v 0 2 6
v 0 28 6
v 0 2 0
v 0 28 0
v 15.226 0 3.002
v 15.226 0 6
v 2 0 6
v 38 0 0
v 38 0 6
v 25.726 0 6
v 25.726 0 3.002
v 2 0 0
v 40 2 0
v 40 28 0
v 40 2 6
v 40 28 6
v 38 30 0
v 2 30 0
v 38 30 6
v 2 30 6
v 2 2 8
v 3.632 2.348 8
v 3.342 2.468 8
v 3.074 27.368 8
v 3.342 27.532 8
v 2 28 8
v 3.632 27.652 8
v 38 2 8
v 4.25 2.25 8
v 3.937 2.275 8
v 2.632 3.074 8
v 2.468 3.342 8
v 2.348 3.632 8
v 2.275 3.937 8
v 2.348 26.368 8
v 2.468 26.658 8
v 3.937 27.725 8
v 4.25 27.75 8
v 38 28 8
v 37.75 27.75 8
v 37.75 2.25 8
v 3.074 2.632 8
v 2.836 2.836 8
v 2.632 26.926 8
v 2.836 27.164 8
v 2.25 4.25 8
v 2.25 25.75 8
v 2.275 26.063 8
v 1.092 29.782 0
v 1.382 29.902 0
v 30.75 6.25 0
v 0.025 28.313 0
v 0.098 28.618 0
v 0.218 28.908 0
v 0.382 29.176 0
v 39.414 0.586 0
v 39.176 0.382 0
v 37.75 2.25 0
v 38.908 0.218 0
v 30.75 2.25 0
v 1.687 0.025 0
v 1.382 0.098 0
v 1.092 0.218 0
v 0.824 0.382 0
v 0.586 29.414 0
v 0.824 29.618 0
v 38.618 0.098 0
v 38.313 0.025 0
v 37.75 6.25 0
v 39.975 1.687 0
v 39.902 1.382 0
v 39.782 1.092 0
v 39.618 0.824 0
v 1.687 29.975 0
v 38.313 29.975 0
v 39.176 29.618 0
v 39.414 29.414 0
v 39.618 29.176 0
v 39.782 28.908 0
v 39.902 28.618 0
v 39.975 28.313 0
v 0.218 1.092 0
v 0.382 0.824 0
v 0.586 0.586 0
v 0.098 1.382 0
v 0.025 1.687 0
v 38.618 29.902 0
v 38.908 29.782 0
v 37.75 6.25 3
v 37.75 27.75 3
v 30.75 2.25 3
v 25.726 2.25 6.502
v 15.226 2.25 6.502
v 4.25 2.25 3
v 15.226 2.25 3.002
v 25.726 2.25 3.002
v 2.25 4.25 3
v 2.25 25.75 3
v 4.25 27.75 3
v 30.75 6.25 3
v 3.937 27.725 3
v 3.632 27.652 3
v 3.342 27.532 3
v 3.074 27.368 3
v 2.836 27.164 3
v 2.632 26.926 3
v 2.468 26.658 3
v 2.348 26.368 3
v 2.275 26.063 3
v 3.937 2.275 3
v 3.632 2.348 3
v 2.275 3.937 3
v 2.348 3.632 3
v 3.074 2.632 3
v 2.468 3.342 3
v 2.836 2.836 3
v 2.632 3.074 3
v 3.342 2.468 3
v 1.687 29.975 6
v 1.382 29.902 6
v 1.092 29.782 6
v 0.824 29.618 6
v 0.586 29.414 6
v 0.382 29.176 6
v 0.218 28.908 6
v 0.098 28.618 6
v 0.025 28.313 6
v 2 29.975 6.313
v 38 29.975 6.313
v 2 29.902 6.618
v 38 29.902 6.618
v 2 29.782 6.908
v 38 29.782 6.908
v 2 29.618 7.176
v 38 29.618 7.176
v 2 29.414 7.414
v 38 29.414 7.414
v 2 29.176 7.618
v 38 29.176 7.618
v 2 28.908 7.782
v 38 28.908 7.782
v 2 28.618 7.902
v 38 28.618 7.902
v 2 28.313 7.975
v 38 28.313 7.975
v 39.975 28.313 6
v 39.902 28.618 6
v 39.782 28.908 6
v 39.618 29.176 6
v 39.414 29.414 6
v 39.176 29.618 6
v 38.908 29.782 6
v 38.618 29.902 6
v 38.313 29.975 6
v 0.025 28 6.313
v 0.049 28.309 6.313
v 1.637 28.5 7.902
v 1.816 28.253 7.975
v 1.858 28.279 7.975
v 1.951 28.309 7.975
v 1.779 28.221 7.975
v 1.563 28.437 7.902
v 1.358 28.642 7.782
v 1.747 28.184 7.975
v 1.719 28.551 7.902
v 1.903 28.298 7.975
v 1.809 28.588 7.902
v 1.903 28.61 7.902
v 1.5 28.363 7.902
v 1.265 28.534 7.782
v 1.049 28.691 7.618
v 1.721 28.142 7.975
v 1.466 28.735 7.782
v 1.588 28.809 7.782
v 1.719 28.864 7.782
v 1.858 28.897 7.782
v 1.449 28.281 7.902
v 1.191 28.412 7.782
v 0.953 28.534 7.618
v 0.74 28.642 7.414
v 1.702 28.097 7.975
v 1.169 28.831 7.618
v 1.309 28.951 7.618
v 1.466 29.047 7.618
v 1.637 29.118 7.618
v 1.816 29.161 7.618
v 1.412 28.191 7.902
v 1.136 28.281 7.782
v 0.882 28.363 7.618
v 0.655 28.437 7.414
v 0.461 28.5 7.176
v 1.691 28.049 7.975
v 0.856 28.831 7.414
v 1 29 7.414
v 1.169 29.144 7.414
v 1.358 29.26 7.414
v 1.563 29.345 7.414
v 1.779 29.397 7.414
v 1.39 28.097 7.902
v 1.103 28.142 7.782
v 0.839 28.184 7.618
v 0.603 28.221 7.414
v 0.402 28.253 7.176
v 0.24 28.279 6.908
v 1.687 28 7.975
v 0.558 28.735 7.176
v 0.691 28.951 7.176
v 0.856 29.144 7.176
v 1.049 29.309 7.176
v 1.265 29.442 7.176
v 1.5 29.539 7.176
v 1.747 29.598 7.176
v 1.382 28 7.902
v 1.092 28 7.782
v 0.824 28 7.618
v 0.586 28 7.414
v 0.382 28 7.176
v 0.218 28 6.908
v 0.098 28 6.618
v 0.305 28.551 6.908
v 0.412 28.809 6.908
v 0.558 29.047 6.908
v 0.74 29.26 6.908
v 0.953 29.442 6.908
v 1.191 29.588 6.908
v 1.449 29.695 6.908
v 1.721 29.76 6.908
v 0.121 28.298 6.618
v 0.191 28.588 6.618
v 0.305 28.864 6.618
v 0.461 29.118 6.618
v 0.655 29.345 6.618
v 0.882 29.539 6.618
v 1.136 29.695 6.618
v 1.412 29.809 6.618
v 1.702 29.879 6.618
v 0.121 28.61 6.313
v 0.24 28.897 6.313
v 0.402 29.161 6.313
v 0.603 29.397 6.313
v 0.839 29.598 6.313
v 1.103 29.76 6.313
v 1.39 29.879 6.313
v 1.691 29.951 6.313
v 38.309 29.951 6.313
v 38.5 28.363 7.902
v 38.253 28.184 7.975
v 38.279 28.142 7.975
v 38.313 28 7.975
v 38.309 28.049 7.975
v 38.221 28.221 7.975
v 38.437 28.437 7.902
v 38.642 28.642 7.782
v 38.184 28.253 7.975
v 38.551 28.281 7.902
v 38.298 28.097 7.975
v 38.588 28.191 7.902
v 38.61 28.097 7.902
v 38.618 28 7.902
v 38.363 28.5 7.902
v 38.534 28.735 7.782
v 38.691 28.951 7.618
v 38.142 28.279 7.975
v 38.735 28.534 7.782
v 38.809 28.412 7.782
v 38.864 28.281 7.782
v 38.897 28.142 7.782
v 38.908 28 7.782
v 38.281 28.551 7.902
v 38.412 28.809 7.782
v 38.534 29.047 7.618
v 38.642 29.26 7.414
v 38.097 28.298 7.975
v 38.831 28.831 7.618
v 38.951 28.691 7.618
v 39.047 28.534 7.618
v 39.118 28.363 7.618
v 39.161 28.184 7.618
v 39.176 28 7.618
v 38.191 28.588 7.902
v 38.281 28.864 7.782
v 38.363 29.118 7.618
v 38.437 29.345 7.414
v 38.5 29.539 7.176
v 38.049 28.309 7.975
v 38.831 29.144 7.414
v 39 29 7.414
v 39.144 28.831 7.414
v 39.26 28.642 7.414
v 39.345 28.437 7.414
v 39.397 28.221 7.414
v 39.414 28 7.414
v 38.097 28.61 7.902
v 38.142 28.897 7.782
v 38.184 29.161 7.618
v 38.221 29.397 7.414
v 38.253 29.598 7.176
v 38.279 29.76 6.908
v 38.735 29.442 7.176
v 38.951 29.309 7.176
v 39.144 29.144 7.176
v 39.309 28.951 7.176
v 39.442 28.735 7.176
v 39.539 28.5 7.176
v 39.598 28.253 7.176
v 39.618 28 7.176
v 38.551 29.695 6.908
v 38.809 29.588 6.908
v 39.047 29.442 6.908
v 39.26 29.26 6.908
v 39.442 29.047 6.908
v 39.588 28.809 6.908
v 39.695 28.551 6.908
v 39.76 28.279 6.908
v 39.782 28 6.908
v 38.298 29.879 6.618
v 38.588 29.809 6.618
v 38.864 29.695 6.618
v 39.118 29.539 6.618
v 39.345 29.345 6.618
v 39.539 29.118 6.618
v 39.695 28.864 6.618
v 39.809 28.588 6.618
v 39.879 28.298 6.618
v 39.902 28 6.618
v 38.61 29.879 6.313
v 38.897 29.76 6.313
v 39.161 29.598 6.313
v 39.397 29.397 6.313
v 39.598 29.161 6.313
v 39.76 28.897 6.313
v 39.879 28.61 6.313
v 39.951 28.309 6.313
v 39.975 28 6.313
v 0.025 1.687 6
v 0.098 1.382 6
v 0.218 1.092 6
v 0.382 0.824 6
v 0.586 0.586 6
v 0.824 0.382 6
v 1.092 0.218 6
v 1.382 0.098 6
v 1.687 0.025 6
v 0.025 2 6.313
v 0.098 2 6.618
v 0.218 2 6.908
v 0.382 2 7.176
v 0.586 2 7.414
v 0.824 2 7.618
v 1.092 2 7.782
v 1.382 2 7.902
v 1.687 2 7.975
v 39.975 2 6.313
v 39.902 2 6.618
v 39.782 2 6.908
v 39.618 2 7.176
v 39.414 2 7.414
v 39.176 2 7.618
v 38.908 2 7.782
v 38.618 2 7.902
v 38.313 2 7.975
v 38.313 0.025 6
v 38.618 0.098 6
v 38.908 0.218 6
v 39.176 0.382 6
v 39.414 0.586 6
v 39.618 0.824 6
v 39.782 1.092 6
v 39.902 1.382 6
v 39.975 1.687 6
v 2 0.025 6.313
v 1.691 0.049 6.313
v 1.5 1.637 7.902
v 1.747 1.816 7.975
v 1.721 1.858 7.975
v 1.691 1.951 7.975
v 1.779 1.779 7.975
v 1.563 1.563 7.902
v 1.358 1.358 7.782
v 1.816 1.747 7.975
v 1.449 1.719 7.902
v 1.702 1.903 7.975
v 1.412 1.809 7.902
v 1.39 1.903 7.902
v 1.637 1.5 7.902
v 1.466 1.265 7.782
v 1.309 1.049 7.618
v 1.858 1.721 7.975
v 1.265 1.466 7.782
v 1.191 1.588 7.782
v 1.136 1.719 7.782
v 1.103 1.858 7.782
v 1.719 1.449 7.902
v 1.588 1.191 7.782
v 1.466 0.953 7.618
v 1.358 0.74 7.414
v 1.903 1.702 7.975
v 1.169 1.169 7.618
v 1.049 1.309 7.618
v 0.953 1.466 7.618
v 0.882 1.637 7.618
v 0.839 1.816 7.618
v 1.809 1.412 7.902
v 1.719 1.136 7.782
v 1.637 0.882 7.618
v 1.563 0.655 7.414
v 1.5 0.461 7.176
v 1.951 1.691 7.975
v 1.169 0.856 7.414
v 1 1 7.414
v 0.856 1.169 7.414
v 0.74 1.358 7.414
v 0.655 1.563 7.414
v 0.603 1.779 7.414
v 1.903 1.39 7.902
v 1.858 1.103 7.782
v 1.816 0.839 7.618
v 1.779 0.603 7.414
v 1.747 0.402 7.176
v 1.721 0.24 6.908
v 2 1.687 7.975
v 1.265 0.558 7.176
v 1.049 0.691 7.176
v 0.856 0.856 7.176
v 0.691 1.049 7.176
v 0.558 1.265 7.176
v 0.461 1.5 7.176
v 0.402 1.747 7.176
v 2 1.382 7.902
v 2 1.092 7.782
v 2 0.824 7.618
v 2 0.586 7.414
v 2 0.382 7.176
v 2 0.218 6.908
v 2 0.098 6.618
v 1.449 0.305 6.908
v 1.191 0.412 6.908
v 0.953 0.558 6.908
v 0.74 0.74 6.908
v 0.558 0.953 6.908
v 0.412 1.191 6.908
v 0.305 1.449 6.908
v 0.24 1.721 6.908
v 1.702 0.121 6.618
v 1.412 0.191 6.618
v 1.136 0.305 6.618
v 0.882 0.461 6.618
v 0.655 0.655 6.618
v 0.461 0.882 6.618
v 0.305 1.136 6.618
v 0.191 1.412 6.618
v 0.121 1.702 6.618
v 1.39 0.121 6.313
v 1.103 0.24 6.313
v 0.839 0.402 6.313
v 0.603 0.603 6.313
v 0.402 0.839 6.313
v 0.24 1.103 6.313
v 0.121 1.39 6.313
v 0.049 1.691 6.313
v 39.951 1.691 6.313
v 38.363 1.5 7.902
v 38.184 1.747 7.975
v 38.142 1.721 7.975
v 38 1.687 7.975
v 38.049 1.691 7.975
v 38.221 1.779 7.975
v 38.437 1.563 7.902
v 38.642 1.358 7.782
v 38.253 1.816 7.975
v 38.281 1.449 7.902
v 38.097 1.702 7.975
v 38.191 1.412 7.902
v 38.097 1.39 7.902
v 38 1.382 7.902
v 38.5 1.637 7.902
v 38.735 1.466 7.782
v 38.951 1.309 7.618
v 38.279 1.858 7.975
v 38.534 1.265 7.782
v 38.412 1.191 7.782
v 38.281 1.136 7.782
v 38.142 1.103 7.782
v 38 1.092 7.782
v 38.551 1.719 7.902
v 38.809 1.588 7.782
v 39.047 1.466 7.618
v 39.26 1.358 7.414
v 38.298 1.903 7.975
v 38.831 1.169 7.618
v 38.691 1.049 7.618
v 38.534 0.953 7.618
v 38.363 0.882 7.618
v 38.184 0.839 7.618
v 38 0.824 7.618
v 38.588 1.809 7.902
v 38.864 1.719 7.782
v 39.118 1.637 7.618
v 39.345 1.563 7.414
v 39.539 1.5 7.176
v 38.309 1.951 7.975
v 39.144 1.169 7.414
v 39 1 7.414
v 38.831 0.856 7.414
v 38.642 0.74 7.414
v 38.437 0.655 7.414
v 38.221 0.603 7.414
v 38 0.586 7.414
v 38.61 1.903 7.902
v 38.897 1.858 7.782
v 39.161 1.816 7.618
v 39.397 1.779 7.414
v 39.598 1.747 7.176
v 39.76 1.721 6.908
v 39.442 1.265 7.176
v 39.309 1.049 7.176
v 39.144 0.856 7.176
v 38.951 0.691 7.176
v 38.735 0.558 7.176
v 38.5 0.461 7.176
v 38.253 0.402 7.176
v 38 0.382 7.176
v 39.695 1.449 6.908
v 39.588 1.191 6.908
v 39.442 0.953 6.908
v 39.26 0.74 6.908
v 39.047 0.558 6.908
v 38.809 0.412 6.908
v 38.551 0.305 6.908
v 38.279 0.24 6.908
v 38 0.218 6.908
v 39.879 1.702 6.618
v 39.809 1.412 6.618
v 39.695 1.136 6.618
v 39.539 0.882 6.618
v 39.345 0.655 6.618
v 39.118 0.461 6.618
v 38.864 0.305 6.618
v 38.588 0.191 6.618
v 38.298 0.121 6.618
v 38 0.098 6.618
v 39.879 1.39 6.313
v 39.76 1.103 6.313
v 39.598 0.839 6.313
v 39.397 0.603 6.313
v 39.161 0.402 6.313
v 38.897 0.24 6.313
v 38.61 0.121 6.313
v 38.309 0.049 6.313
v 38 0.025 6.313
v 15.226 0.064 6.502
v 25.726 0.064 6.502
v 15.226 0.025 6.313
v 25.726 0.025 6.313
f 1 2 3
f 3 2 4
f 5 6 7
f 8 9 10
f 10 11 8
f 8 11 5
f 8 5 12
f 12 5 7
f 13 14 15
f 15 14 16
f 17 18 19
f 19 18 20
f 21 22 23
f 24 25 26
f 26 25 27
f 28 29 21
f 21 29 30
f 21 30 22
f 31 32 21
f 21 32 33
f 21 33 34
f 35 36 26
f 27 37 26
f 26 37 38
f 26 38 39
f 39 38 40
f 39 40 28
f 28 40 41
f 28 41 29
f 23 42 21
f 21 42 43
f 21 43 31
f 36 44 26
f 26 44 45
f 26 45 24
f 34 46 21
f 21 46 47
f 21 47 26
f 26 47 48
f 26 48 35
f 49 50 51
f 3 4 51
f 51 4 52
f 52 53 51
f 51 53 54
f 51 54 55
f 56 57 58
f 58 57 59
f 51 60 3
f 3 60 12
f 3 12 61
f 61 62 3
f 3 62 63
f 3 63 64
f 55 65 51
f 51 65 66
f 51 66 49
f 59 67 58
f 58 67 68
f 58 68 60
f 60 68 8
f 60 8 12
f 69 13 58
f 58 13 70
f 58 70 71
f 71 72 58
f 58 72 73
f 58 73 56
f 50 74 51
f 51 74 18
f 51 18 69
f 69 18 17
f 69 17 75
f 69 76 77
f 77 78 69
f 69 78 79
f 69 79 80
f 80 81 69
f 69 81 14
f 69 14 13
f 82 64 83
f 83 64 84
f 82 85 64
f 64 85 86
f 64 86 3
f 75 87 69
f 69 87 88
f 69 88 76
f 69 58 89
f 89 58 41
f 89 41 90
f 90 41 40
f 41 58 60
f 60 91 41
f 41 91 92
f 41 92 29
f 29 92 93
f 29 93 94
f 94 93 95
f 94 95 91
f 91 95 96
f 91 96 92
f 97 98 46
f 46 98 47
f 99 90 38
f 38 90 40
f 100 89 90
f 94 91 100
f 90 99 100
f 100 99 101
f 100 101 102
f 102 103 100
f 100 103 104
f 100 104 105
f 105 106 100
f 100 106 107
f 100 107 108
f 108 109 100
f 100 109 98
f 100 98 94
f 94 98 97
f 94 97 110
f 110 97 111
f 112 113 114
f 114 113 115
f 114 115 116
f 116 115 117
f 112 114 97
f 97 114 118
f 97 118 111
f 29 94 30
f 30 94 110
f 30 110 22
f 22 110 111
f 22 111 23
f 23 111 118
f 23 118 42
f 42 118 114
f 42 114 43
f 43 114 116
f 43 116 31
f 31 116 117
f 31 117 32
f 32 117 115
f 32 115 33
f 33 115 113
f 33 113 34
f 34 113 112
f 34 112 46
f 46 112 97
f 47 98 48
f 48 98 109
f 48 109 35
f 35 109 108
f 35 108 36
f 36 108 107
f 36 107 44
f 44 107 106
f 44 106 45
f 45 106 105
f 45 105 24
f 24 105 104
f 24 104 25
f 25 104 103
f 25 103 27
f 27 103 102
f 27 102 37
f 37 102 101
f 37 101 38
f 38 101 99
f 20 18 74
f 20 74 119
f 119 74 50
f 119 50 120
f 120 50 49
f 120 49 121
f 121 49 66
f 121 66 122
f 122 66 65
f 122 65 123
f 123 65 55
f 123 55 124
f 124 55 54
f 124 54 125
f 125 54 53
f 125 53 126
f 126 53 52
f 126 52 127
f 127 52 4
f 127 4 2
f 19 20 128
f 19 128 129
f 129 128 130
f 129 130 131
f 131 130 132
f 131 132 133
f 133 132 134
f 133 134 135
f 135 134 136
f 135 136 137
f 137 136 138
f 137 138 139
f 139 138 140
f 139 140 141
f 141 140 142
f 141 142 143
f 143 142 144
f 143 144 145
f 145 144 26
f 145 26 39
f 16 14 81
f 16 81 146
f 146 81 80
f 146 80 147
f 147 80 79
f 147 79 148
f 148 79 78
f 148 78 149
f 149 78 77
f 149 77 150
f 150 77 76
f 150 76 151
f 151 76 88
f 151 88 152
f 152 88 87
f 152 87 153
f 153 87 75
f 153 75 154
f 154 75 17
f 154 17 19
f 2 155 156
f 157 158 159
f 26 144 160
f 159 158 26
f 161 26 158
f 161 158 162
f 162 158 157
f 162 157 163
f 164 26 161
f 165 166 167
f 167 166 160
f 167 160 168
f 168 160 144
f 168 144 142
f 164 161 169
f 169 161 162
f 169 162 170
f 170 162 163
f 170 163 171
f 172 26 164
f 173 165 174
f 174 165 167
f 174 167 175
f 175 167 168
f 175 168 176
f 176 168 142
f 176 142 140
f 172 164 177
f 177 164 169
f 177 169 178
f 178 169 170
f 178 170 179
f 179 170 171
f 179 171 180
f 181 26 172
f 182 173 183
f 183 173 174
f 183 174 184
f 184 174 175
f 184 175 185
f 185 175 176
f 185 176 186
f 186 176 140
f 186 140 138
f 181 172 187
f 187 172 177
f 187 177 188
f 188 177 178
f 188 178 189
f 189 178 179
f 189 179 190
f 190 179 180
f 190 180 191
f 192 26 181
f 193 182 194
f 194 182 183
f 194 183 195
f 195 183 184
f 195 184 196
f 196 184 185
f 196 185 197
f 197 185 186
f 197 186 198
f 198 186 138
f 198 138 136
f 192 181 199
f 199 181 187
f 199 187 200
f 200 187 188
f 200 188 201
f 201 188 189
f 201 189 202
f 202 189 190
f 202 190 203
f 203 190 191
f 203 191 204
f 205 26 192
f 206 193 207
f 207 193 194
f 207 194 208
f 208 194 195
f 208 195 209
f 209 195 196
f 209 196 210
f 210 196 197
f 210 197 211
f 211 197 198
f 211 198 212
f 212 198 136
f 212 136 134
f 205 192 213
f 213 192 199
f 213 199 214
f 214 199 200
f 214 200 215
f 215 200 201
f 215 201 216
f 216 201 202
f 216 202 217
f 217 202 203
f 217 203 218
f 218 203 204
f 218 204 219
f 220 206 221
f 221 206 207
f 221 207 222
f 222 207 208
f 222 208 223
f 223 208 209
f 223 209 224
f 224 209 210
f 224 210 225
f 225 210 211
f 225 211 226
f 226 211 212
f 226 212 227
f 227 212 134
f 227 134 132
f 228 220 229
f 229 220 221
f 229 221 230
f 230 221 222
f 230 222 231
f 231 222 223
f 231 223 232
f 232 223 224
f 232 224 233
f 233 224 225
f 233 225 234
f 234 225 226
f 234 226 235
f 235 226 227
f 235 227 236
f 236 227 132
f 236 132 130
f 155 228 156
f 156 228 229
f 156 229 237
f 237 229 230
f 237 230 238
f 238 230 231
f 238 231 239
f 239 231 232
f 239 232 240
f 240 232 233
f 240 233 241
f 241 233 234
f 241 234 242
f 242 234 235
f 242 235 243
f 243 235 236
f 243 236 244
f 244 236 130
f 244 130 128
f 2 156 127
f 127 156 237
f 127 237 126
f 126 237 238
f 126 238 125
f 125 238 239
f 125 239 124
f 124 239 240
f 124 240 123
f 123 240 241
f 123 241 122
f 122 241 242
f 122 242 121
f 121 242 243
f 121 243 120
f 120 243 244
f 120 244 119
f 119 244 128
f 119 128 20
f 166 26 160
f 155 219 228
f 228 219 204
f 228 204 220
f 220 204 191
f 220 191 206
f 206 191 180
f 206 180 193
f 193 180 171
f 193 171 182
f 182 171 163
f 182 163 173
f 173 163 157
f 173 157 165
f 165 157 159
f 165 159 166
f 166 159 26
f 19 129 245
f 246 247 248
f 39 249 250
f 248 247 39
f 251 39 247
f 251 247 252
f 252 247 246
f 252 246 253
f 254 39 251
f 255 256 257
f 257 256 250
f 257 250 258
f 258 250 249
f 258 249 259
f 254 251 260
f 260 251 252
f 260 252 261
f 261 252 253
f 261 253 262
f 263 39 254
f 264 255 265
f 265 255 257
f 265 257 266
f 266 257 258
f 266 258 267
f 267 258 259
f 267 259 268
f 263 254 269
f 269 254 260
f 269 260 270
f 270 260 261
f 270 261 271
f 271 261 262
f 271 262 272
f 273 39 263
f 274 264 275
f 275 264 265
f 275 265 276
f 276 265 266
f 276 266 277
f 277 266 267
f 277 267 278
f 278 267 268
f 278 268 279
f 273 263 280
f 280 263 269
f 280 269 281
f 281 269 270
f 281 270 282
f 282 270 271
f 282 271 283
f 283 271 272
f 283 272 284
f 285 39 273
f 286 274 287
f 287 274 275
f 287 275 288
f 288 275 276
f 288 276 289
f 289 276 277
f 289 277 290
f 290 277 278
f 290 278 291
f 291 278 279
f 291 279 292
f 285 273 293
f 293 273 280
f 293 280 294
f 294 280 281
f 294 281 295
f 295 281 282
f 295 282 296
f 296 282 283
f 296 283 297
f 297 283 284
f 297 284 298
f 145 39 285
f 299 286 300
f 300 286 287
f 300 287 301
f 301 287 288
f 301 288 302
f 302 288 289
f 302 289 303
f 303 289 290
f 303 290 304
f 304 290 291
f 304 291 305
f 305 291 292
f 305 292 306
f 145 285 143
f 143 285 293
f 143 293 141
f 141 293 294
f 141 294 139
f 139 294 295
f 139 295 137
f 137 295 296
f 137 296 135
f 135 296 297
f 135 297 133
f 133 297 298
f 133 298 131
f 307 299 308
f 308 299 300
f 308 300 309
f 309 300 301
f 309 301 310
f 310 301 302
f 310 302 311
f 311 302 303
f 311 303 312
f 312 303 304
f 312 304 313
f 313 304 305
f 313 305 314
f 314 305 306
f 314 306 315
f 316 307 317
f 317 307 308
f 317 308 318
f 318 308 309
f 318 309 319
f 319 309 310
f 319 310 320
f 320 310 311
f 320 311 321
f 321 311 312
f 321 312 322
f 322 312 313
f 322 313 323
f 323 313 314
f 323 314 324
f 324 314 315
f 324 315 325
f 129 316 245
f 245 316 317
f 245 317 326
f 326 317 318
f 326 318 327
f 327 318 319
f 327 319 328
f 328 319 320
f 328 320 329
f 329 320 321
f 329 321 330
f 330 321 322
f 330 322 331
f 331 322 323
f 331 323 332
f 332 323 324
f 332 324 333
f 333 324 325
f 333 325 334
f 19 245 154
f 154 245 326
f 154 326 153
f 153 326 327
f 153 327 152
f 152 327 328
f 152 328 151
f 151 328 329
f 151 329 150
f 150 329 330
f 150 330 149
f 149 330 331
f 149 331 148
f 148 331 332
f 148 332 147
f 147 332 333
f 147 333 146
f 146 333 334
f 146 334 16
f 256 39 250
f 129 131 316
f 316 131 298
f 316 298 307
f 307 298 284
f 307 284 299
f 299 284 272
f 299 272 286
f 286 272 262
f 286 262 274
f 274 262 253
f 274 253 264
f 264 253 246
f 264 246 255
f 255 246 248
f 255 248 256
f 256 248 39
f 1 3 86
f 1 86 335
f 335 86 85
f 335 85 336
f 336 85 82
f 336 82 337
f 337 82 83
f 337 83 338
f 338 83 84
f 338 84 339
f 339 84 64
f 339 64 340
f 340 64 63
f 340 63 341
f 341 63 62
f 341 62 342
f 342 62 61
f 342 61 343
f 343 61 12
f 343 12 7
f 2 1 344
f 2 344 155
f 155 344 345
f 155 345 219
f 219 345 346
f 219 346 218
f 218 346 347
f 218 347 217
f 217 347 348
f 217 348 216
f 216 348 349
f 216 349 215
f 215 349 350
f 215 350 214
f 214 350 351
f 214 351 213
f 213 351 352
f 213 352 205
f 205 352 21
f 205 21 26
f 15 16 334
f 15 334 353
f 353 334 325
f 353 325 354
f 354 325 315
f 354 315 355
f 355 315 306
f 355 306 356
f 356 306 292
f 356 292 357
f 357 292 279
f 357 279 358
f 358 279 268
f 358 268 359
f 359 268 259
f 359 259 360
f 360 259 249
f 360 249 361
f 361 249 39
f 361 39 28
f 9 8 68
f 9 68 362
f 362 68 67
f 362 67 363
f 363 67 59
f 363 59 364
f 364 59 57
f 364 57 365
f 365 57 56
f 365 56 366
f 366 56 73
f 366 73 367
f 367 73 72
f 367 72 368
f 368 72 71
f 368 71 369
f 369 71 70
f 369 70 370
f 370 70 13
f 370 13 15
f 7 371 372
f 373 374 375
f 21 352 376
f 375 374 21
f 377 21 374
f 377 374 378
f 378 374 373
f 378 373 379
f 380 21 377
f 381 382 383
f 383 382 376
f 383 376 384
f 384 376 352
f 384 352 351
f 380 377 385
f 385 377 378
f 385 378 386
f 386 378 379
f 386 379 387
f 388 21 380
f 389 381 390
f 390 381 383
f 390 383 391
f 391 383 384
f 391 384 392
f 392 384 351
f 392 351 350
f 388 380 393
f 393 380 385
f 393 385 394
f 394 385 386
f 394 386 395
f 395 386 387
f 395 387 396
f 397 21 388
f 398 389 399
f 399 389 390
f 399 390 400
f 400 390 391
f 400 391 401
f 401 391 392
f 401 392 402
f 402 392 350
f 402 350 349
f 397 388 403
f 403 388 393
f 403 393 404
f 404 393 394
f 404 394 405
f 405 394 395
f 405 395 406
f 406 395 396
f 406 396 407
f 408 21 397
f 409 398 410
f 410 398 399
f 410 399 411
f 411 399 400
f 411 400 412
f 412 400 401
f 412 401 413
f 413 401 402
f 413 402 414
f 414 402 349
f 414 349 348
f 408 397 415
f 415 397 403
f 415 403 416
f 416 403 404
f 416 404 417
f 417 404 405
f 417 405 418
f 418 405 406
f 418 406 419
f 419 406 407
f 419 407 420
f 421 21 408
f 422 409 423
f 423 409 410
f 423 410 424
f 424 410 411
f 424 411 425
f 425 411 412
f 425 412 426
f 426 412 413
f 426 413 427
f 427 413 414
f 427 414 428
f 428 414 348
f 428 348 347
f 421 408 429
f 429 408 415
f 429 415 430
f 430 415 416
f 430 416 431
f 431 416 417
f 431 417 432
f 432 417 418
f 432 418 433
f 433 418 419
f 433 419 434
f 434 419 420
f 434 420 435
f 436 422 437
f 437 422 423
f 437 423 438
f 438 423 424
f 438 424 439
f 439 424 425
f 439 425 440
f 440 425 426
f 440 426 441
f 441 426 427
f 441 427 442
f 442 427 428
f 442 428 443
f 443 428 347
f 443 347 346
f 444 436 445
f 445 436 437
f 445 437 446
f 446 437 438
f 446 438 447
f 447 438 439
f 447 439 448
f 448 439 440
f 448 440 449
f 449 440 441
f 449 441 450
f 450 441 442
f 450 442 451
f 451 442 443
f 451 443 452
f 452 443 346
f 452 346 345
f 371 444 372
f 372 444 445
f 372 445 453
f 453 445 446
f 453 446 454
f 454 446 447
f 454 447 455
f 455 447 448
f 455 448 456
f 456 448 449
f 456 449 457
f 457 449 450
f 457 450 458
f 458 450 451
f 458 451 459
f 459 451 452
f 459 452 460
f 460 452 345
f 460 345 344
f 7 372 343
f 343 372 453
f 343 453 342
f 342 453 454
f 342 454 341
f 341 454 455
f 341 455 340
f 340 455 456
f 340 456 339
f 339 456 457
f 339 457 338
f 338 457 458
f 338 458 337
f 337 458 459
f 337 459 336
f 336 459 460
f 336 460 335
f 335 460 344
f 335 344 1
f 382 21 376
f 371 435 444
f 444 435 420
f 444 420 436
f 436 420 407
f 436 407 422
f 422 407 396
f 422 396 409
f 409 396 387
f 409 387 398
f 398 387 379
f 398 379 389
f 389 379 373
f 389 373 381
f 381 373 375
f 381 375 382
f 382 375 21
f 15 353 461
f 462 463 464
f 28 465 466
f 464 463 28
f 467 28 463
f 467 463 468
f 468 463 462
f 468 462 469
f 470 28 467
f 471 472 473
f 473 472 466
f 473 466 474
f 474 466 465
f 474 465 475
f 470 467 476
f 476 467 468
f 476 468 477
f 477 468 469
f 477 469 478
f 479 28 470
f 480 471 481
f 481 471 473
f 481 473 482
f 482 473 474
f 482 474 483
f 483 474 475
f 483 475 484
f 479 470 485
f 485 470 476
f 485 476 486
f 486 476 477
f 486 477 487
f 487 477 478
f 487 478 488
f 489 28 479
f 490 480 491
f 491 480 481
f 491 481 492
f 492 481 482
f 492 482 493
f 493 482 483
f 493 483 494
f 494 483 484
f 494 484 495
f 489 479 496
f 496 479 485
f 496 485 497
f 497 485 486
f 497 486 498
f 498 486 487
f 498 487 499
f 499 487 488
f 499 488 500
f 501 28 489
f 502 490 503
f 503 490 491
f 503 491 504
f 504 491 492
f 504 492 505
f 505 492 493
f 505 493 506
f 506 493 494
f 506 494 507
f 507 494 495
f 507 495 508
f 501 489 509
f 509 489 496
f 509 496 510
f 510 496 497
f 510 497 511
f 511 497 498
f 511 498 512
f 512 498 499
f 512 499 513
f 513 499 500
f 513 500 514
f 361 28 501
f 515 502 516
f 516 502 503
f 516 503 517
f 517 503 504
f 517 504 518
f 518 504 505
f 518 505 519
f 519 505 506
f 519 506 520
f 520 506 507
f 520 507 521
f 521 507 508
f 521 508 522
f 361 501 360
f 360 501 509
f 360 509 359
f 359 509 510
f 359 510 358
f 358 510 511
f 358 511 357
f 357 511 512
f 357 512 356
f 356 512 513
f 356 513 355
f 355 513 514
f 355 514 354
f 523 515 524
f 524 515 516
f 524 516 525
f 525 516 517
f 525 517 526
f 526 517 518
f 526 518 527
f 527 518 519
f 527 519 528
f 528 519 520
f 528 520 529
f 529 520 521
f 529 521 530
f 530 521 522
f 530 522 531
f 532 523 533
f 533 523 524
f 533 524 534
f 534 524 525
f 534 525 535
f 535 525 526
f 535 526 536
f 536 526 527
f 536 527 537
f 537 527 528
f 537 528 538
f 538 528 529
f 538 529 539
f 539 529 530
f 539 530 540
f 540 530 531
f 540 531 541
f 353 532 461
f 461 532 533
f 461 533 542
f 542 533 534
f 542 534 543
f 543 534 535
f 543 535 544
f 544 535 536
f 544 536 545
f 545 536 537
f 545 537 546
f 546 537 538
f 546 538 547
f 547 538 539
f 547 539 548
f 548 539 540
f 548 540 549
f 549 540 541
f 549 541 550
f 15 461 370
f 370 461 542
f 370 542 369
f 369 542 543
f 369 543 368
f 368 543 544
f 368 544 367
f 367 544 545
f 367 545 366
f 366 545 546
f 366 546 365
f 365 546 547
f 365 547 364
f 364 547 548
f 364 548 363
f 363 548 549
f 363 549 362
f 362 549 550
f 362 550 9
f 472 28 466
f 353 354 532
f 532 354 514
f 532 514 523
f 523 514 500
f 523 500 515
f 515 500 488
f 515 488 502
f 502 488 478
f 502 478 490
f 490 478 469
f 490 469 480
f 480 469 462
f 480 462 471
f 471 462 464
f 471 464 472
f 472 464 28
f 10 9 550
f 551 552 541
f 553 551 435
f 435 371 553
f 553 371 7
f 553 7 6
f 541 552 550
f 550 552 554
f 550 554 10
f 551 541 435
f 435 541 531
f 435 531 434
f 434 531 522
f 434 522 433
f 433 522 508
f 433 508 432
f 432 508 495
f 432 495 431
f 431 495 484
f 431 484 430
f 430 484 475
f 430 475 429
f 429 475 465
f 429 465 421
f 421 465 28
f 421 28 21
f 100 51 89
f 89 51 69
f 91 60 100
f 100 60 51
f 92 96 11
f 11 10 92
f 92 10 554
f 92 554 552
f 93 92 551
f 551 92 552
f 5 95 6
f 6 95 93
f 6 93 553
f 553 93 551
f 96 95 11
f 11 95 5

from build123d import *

# Parameters (mm, degrees)
SKETCH1_W           = 40
SKETCH1_H           = 30
BOSS_EXTRUDE1_DEPTH = 8
SKETCH2_W           = 35.5
SKETCH2_H           = 25.5
CUT_EXTRUDE1_DEPTH  = 5
FILLET1_R           = 2
FILLET2_R           = 2
SKETCH3_W           = 7
SKETCH3_H           = 4
CUT_EXTRUDE2_DEPTH  = 3
SKETCH6_W           = 10.5
SKETCH6_H           = 3.5
CUT_EXTRUDE3_DEPTH  = 2.25


with BuildPart() as part:
    # Sketch1 → Boss-Extrude1 (new body)
    with BuildSketch(Plane.XY):
        with Locations((20, 15)):
            Rectangle(SKETCH1_W, SKETCH1_H)
    extrude(amount=BOSS_EXTRUDE1_DEPTH)

    # Sketch2 → Cut-Extrude1 (cut)
    with BuildSketch(Plane.XY.offset(8)):
        with Locations((20, 15)):
            Rectangle(SKETCH2_W, SKETCH2_H)
    extrude(amount=-CUT_EXTRUDE1_DEPTH, mode=Mode.SUBTRACT)

    # Fillet1
    fillet1_edges = [part.edges().sort_by_distance(p)[0] for p in [
        (2.25, 2.25, 5.5),
        (2.25, 27.75, 5.5),
    ]]
    fillet(fillet1_edges, radius=FILLET1_R)

    # Fillet2
    fillet2_edges = [part.edges().sort_by_distance(p)[0] for p in [
        (40, 15, 8),
        (20, 30, 8),
        (0, 15, 8),
        (20, 0, 8),
        (0, 30, 4),
        (40, 30, 4),
        (40, 0, 4),
        (0, 0, 4),
    ]]
    fillet(fillet2_edges, radius=FILLET2_R)

    # Sketch3 → Cut-Extrude2 (cut)
    with BuildSketch(Plane.XY.offset(3)):
        with Locations((34.25, 4.25)):
            Rectangle(SKETCH3_W, SKETCH3_H)
    extrude(amount=-CUT_EXTRUDE2_DEPTH, mode=Mode.SUBTRACT)

    # Sketch6 → Cut-Extrude3 (cut)
    with BuildSketch(Plane(origin=(0, 2.25, 0), x_dir=(1, 0, 0), z_dir=(0, 1, 0))):
        with Locations((20.475771031, -4.752425865)):
            Rectangle(SKETCH6_W, SKETCH6_H)
    extrude(amount=-CUT_EXTRUDE3_DEPTH, mode=Mode.SUBTRACT)


solid = part.part
